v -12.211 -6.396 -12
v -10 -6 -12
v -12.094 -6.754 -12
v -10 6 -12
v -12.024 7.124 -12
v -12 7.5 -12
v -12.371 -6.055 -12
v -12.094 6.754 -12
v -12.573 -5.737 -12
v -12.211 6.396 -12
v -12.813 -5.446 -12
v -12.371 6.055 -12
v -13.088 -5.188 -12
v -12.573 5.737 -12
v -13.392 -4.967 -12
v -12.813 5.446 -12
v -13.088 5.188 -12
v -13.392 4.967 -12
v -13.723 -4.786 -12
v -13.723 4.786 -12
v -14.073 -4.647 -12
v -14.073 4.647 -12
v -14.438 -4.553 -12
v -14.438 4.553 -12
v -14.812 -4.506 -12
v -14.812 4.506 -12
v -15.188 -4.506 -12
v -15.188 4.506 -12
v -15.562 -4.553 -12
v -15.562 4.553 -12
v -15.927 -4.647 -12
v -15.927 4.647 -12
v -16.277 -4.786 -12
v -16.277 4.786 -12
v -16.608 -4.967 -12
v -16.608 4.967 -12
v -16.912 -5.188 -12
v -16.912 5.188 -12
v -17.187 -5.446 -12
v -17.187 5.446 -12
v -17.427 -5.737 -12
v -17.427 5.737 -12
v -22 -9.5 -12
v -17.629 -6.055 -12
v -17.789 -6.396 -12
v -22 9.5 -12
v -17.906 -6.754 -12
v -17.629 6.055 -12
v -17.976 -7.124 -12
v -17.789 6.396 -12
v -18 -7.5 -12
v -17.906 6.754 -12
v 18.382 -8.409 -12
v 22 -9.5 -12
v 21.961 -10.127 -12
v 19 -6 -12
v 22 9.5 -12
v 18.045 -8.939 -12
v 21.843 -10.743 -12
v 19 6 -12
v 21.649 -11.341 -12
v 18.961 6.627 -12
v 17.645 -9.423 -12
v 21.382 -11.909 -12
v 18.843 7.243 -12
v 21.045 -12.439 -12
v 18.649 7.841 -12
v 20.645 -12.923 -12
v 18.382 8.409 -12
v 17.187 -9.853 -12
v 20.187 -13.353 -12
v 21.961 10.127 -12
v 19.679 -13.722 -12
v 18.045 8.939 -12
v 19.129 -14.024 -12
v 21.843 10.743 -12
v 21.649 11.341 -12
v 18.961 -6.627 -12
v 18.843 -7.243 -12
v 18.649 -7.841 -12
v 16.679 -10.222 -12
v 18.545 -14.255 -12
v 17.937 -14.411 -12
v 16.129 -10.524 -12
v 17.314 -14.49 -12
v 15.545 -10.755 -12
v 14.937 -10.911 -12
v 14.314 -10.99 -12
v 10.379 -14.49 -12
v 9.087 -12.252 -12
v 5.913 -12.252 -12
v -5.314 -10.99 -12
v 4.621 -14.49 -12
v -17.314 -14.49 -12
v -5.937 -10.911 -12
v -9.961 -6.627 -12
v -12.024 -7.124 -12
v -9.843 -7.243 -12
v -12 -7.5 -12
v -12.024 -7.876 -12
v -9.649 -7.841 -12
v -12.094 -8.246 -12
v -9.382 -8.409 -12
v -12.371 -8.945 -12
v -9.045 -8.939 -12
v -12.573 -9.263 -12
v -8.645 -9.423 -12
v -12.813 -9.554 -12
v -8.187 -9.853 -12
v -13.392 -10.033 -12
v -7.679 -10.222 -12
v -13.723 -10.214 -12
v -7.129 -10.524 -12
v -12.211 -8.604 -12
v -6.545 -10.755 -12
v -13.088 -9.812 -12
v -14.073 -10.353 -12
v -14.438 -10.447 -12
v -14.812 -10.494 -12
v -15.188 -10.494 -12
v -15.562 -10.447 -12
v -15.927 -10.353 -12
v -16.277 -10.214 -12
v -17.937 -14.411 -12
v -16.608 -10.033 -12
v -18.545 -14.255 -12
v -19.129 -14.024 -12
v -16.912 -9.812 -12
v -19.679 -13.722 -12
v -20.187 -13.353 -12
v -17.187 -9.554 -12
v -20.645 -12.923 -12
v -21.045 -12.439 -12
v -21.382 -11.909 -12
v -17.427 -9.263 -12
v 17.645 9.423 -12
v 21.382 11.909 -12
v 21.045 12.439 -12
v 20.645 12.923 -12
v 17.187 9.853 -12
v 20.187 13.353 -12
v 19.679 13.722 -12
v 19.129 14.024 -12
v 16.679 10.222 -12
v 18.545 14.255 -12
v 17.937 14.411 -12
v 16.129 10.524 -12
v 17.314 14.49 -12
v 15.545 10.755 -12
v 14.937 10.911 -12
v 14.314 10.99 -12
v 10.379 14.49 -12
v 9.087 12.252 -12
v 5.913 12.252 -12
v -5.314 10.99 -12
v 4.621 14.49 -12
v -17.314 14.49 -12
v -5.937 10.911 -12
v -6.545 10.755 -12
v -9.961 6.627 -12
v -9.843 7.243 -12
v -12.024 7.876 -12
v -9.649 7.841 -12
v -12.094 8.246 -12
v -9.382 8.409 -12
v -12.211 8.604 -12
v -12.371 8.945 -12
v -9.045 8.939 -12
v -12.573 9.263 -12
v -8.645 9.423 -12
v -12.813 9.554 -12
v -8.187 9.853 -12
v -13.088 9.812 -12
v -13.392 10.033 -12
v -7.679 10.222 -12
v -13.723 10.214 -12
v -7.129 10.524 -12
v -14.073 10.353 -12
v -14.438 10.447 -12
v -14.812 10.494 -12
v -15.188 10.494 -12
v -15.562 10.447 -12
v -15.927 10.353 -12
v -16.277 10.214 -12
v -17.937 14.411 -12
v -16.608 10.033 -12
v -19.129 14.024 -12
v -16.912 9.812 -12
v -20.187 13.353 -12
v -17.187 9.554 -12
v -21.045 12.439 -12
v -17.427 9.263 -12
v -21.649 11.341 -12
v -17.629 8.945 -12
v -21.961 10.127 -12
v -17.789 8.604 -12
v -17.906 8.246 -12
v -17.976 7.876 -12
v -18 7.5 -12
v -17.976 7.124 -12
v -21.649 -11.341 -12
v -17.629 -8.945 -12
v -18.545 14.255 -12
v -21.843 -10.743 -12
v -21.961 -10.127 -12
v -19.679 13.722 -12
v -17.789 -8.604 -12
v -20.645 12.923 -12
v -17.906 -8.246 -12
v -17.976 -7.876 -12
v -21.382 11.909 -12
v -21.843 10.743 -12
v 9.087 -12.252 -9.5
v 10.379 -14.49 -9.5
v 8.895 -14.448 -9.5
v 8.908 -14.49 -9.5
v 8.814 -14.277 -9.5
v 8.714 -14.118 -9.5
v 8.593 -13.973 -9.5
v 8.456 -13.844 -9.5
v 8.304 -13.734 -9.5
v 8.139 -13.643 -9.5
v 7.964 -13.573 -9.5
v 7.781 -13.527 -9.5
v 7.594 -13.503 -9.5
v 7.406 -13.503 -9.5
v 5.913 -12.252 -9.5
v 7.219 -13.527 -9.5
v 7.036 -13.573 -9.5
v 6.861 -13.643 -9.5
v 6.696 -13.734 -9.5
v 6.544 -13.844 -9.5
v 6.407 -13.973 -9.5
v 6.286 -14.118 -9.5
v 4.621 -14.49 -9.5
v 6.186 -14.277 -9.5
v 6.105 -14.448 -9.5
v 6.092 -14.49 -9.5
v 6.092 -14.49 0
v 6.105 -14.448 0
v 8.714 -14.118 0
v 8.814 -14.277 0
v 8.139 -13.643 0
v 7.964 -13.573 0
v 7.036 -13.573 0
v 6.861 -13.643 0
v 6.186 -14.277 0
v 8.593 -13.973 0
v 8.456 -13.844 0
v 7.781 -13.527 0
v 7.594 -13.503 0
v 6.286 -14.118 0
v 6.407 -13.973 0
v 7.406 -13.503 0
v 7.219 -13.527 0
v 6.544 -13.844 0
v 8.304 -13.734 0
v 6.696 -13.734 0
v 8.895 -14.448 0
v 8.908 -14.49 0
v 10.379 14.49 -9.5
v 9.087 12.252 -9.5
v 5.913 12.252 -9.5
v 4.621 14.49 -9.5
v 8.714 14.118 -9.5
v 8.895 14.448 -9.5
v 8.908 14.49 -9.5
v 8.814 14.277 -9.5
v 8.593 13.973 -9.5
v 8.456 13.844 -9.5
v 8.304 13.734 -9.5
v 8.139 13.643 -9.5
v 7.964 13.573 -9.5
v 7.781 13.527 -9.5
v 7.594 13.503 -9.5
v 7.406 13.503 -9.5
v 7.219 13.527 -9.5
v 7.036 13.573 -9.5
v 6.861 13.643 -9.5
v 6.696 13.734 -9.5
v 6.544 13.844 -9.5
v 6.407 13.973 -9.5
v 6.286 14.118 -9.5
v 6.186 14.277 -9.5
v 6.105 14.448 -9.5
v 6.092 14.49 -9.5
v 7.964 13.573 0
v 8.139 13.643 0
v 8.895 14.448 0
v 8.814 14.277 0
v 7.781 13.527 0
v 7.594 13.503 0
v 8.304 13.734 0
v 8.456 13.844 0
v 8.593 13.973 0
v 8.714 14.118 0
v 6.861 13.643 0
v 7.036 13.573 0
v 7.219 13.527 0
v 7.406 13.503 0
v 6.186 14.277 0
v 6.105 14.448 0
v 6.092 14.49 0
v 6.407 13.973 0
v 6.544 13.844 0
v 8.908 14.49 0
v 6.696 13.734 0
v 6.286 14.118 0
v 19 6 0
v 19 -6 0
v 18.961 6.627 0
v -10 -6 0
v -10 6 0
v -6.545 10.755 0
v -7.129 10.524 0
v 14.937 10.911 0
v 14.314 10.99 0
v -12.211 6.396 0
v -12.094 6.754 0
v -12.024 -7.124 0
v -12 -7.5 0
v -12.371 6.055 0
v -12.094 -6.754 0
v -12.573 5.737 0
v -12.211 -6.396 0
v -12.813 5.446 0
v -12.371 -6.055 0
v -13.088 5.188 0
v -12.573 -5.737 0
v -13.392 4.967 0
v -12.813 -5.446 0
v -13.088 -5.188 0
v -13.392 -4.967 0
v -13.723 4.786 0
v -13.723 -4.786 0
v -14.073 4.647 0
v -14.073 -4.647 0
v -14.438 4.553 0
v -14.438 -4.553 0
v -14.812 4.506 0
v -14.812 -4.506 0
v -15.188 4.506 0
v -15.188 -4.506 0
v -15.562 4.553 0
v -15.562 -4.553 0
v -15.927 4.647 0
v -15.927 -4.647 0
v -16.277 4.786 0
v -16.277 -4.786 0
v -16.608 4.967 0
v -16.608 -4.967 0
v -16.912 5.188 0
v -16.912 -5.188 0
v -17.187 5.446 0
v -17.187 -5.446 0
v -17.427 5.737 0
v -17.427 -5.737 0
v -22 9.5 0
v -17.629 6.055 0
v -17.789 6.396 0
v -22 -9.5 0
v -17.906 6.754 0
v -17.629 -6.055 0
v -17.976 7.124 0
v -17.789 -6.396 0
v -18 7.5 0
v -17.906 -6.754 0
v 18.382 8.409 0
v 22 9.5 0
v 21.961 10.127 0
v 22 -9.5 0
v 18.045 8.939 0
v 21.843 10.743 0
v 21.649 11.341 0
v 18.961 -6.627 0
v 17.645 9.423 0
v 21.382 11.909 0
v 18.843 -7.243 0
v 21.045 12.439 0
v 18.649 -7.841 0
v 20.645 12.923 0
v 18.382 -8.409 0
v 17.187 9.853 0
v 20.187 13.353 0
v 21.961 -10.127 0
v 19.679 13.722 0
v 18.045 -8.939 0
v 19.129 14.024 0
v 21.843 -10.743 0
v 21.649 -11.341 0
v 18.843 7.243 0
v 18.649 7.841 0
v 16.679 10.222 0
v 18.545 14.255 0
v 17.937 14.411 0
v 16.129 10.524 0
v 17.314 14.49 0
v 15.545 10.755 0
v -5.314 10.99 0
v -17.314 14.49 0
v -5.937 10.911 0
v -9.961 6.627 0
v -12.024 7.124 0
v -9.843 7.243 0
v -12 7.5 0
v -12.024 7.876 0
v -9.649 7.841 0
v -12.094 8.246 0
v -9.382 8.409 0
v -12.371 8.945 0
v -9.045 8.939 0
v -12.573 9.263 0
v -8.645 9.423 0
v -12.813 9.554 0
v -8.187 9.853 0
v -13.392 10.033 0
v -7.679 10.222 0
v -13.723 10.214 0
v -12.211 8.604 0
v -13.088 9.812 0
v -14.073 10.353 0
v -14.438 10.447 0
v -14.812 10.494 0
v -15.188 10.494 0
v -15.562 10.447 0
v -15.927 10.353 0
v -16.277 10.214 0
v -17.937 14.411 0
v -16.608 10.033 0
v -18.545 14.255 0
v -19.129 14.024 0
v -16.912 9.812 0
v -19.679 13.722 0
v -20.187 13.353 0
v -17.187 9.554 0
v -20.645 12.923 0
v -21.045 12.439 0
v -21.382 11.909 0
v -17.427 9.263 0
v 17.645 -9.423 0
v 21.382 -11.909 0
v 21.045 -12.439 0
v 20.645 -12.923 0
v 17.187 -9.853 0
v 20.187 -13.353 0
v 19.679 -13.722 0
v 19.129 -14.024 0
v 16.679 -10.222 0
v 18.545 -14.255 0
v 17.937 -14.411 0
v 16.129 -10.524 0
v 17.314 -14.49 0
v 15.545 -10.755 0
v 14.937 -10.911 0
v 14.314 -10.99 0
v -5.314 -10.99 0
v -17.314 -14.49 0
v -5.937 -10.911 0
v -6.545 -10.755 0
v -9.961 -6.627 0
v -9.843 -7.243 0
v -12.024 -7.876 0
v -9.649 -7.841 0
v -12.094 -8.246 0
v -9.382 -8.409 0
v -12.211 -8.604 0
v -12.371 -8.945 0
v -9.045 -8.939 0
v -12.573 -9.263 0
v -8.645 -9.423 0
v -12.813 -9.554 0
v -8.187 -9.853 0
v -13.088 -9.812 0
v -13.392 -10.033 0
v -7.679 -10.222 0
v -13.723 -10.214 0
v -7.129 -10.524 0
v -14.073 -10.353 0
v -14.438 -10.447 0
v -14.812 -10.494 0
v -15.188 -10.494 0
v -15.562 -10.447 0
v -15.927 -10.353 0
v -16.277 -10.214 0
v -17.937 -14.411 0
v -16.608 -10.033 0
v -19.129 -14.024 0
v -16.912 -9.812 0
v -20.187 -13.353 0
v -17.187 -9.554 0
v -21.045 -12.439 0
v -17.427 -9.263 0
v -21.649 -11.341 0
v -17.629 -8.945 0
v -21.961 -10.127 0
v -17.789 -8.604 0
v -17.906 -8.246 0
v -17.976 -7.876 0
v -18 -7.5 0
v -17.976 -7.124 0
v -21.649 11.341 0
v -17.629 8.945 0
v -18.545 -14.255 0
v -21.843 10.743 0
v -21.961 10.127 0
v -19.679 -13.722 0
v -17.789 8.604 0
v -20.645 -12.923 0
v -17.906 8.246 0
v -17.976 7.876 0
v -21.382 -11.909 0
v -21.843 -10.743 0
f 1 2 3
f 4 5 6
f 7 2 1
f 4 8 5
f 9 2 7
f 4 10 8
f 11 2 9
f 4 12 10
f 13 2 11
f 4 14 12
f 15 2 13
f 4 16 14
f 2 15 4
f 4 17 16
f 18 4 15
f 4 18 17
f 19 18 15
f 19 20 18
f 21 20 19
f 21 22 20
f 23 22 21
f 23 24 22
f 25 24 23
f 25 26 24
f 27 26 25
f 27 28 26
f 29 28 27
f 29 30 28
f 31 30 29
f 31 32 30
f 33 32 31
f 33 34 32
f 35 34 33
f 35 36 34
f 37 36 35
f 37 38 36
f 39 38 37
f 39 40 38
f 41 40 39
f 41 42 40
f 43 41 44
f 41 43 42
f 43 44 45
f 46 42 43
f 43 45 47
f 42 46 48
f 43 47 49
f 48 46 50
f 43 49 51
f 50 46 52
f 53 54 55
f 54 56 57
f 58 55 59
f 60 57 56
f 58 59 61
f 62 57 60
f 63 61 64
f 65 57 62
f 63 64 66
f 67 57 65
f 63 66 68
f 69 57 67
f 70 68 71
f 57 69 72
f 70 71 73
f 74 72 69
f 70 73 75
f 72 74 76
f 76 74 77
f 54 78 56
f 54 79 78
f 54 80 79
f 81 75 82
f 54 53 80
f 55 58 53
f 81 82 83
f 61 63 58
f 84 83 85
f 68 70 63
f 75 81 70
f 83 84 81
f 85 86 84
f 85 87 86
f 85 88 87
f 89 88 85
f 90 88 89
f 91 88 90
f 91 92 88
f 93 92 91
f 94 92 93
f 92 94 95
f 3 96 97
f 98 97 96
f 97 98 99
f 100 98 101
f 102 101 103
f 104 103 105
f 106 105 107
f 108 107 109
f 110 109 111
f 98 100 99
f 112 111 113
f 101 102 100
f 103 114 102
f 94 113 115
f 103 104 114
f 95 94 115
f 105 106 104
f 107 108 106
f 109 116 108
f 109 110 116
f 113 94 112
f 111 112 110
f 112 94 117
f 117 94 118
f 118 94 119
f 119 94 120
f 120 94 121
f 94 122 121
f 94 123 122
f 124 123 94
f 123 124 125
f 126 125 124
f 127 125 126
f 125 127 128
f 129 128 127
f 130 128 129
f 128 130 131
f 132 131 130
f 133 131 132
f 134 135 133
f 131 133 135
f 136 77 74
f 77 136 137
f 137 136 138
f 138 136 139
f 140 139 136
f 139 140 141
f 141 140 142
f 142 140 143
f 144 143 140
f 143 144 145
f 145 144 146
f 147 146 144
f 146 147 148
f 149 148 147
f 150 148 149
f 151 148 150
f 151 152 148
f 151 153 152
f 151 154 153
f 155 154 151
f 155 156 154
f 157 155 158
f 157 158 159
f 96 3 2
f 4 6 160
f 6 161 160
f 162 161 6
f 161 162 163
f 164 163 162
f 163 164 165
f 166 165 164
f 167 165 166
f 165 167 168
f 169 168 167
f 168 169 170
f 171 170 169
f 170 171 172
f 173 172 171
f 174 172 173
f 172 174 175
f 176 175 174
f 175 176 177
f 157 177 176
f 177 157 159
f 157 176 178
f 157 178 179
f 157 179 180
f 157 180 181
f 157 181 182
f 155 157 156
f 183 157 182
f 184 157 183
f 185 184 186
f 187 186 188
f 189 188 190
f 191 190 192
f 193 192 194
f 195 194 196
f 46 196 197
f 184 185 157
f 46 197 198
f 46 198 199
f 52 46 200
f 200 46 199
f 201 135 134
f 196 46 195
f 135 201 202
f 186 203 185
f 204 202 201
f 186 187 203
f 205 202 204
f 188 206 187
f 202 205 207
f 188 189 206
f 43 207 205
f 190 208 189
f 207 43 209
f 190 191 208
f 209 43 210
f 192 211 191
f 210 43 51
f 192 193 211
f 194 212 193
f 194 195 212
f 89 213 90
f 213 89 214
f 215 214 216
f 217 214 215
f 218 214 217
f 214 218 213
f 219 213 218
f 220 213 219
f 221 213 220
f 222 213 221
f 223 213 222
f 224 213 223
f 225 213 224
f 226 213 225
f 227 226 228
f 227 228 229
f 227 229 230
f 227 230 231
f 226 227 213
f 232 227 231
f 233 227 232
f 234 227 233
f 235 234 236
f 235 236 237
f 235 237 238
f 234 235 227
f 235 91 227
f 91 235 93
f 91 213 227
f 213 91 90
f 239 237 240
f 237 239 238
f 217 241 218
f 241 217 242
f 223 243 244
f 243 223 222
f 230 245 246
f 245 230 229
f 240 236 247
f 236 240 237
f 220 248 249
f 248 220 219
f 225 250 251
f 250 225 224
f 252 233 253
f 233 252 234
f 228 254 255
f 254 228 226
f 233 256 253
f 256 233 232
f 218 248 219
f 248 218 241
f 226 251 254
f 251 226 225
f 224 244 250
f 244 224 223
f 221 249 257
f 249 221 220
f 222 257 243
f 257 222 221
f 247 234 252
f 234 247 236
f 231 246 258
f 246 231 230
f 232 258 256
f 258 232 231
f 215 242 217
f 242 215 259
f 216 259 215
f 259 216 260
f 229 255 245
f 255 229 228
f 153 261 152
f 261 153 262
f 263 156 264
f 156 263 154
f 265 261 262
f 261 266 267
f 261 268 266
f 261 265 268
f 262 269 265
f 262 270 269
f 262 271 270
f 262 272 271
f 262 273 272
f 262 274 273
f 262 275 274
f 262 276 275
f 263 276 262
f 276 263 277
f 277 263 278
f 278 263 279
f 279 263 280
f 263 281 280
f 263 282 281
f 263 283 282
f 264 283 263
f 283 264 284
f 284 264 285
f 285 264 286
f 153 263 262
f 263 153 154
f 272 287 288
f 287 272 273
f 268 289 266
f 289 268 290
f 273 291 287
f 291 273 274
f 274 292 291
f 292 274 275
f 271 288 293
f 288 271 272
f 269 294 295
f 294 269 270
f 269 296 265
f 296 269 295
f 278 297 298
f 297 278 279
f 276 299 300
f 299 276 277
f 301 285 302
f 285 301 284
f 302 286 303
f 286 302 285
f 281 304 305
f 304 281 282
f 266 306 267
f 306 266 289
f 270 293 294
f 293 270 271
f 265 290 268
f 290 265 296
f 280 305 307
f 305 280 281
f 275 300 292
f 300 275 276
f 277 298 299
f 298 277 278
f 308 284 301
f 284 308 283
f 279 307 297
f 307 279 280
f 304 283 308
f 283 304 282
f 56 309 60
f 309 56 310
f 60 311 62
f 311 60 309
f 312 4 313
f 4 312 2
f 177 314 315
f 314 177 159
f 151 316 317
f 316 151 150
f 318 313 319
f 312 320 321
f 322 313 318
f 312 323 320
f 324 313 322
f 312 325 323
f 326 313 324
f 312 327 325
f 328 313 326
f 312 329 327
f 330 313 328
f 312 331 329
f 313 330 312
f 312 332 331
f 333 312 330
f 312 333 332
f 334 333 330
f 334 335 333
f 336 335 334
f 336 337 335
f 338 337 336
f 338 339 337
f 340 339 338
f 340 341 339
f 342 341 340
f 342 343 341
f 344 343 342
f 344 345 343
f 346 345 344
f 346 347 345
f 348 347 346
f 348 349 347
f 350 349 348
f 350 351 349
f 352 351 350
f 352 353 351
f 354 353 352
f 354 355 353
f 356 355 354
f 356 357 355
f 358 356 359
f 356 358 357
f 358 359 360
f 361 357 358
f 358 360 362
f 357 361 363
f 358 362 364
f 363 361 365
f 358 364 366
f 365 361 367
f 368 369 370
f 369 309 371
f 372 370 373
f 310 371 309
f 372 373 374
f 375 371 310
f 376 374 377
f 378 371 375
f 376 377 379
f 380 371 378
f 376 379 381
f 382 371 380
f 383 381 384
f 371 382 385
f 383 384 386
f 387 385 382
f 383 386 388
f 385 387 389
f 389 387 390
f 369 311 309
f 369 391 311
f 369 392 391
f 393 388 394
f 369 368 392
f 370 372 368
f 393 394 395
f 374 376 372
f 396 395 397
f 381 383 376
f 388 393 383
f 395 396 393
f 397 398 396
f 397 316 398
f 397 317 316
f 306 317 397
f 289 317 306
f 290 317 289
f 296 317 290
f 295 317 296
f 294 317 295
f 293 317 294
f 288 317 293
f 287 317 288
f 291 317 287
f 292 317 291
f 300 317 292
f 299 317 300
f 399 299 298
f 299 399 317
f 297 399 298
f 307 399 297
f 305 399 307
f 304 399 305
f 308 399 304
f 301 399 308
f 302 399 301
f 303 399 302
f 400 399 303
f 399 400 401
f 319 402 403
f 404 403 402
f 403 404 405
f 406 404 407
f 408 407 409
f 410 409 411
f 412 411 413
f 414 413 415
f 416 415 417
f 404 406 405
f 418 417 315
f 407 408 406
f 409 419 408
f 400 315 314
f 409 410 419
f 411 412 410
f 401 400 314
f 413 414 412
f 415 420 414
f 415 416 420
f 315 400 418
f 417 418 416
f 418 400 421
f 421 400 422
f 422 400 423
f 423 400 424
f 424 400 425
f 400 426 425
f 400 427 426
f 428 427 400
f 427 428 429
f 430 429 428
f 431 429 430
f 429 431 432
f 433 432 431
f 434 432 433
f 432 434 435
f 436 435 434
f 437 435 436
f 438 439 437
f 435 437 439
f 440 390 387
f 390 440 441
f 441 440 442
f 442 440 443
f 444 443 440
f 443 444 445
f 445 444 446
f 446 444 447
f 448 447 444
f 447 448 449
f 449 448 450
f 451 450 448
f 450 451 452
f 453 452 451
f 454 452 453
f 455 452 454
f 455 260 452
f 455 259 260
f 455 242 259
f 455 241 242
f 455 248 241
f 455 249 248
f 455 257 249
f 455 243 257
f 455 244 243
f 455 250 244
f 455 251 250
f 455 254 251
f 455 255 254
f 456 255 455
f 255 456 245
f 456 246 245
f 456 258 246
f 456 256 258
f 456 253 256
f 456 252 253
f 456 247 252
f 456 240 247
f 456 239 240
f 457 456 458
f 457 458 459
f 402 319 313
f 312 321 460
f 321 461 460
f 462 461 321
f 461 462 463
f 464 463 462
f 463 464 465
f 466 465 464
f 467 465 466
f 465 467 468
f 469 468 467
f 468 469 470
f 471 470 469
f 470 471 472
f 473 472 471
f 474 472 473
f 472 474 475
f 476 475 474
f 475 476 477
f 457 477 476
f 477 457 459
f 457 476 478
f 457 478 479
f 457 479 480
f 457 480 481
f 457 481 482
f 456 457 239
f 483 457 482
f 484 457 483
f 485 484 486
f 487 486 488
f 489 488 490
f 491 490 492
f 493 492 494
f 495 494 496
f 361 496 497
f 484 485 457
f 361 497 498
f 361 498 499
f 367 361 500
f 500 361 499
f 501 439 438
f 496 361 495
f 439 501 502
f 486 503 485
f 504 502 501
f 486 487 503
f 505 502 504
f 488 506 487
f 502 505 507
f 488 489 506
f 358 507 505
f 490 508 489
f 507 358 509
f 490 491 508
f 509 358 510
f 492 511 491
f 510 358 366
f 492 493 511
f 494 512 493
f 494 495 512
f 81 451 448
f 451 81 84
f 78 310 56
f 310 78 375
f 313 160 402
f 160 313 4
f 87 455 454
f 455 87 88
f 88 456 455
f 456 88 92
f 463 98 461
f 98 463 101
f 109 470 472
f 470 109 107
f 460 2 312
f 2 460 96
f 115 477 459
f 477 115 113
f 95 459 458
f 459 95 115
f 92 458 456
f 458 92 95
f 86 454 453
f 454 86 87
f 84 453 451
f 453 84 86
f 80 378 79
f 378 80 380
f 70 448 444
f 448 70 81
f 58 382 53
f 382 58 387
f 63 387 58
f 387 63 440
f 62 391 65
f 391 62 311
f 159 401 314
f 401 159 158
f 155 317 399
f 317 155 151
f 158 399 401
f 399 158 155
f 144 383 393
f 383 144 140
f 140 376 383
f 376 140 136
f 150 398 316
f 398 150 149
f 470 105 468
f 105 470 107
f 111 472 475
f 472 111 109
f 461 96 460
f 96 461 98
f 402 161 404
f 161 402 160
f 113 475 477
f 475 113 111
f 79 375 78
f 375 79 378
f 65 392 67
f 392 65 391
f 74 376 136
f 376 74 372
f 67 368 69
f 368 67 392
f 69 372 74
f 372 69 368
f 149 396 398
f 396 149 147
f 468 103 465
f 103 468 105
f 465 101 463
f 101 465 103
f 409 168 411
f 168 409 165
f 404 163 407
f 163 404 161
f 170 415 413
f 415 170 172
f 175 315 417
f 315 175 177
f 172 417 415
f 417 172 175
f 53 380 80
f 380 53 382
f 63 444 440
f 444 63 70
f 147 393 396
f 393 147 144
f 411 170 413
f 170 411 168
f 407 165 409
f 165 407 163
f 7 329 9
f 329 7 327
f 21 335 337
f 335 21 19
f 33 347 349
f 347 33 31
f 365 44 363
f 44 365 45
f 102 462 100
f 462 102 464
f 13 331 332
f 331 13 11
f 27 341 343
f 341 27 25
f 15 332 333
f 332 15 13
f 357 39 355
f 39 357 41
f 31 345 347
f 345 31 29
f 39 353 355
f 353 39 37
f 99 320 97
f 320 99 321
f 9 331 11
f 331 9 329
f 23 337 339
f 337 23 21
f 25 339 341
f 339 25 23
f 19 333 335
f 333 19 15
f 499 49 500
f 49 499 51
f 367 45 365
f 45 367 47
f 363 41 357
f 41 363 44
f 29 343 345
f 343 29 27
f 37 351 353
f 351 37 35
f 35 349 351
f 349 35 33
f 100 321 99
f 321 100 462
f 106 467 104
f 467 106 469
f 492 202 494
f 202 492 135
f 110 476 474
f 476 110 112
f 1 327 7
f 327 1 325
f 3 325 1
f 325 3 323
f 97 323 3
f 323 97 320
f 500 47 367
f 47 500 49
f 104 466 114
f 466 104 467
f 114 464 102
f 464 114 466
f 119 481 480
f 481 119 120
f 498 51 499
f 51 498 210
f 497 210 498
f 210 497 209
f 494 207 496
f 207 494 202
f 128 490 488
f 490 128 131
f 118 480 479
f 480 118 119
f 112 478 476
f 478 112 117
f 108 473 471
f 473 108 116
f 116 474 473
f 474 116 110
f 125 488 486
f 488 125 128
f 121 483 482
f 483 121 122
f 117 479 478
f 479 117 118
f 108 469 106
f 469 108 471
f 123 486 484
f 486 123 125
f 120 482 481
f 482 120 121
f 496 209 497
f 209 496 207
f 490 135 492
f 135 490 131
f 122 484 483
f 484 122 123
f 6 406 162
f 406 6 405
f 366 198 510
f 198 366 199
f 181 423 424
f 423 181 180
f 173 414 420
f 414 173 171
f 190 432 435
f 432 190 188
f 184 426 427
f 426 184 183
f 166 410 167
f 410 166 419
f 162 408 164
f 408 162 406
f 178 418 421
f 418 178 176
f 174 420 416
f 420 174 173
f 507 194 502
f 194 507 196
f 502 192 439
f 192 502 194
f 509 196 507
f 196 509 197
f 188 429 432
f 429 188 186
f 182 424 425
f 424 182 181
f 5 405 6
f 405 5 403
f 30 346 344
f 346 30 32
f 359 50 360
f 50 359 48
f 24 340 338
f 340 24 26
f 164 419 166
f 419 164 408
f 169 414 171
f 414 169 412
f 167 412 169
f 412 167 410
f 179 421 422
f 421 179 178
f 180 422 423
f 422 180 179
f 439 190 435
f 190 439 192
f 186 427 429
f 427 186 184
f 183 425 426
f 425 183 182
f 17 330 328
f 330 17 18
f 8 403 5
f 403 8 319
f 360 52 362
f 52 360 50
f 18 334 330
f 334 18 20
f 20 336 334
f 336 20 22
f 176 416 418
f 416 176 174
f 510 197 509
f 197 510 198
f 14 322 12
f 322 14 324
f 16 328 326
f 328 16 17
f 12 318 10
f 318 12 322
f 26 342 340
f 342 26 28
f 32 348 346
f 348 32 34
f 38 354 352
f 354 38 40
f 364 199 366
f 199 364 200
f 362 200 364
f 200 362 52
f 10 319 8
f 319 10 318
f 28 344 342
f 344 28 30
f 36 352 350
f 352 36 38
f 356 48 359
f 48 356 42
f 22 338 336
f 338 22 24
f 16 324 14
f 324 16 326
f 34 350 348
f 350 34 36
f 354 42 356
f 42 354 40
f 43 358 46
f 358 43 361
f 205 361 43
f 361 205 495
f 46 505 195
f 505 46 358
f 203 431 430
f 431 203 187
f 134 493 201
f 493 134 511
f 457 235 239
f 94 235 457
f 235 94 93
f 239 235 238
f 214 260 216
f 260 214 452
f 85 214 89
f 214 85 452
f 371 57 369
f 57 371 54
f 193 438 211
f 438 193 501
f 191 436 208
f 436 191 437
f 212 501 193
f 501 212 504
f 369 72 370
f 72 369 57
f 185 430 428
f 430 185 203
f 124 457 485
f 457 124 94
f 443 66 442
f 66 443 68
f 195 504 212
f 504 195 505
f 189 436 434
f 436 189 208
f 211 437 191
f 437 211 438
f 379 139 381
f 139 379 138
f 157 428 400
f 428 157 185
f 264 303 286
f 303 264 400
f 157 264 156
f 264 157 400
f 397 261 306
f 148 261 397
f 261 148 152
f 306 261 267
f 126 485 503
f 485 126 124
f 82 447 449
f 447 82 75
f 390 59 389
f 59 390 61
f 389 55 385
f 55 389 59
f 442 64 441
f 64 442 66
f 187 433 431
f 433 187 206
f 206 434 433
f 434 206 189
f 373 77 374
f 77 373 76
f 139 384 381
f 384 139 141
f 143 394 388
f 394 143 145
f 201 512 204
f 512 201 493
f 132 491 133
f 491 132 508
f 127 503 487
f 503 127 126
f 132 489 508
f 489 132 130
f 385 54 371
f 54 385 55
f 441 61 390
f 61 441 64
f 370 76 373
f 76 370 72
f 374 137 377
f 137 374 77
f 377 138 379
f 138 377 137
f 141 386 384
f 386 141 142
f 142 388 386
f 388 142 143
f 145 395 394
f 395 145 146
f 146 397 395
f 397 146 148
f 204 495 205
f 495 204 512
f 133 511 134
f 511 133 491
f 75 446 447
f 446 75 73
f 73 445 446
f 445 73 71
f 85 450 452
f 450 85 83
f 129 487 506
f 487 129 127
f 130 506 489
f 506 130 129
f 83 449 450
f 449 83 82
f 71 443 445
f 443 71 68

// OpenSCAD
$fn = 50;


difference() {
	union() {
		translate(v = [0, 0, -12]) {
			hull() {
				translate(v = [-17.0000000000, 9.5000000000, 0]) {
					cylinder(h = 12, r = 5);
				}
				translate(v = [17.0000000000, 9.5000000000, 0]) {
					cylinder(h = 12, r = 5);
				}
				translate(v = [-17.0000000000, -9.5000000000, 0]) {
					cylinder(h = 12, r = 5);
				}
				translate(v = [17.0000000000, -9.5000000000, 0]) {
					cylinder(h = 12, r = 5);
				}
			}
		}
	}
	union() {
		translate(v = [7.5000000000, -15, -12]) {
			rotate(a = [0, 0, 0]) {
				difference() {
					union() {
						linear_extrude(height = 2.5000000000) {
							polygon(points = [[3.1735000000, 0.0000000000], [1.5867500000, 2.7483316189], [-1.5867500000, 2.7483316189], [-3.1735000000, 0.0000000000], [-1.5867500000, -2.7483316189], [1.5867500000, -2.7483316189]]);
						}
						translate(v = [0, 0, -50.0000000000]) {
							cylinder(h = 100, r = 1.5000000000);
						}
						translate(v = [0, 0, -50.0000000000]) {
							cylinder(h = 100, r = 1.5000000000);
						}
						translate(v = [0, 0, -50.0000000000]) {
							cylinder(h = 100, r = 1.5000000000);
						}
					}
					union();
				}
			}
		}
		translate(v = [7.5000000000, 15, -12]) {
			rotate(a = [0, 0, 0]) {
				difference() {
					union() {
						linear_extrude(height = 2.5000000000) {
							polygon(points = [[3.1735000000, 0.0000000000], [1.5867500000, 2.7483316189], [-1.5867500000, 2.7483316189], [-3.1735000000, 0.0000000000], [-1.5867500000, -2.7483316189], [1.5867500000, -2.7483316189]]);
						}
						translate(v = [0, 0, -50.0000000000]) {
							cylinder(h = 100, r = 1.5000000000);
						}
						translate(v = [0, 0, -50.0000000000]) {
							cylinder(h = 100, r = 1.5000000000);
						}
						translate(v = [0, 0, -50.0000000000]) {
							cylinder(h = 100, r = 1.5000000000);
						}
					}
					union();
				}
			}
		}
		translate(v = [0, 0, -3]) {
			rotate(a = [0, 0, 180]) {
				difference() {
					union() {
						translate(v = [-4.5000000000, 0, -9]) {
							#hull() {
								translate(v = [-9.5000000000, 6.0000000000, 0]) {
									cylinder(h = 12, r = 5);
								}
								translate(v = [9.5000000000, 6.0000000000, 0]) {
									cylinder(h = 12, r = 5);
								}
								translate(v = [-9.5000000000, -6.0000000000, 0]) {
									cylinder(h = 12, r = 5);
								}
								translate(v = [9.5000000000, -6.0000000000, 0]) {
									cylinder(h = 12, r = 5);
								}
							}
						}
					}
					union();
				}
			}
		}
		translate(v = [-15.0000000000, -7.5000000000, -50.0000000000]) {
			cylinder(h = 100, r = 3.0000000000);
		}
		translate(v = [-15.0000000000, 7.5000000000, -50.0000000000]) {
			cylinder(h = 100, r = 3.0000000000);
		}
		translate(v = [-15.0000000000, 7.5000000000, -50.0000000000]) {
			cylinder(h = 100, r = 3.0000000000);
		}
		translate(v = [0.0000000000, 7.5000000000, -50.0000000000]) {
			cylinder(h = 100, r = 3.0000000000);
		}
		translate(v = [15.0000000000, 7.5000000000, -50.0000000000]) {
			cylinder(h = 100, r = 3.0000000000);
		}
		translate(v = [-15.0000000000, -7.5000000000, -50.0000000000]) {
			cylinder(h = 100, r = 3.0000000000);
		}
		translate(v = [0.0000000000, -7.5000000000, -50.0000000000]) {
			cylinder(h = 100, r = 3.0000000000);
		}
		translate(v = [15.0000000000, -7.5000000000, -50.0000000000]) {
			cylinder(h = 100, r = 3.0000000000);
		}
	}
}
